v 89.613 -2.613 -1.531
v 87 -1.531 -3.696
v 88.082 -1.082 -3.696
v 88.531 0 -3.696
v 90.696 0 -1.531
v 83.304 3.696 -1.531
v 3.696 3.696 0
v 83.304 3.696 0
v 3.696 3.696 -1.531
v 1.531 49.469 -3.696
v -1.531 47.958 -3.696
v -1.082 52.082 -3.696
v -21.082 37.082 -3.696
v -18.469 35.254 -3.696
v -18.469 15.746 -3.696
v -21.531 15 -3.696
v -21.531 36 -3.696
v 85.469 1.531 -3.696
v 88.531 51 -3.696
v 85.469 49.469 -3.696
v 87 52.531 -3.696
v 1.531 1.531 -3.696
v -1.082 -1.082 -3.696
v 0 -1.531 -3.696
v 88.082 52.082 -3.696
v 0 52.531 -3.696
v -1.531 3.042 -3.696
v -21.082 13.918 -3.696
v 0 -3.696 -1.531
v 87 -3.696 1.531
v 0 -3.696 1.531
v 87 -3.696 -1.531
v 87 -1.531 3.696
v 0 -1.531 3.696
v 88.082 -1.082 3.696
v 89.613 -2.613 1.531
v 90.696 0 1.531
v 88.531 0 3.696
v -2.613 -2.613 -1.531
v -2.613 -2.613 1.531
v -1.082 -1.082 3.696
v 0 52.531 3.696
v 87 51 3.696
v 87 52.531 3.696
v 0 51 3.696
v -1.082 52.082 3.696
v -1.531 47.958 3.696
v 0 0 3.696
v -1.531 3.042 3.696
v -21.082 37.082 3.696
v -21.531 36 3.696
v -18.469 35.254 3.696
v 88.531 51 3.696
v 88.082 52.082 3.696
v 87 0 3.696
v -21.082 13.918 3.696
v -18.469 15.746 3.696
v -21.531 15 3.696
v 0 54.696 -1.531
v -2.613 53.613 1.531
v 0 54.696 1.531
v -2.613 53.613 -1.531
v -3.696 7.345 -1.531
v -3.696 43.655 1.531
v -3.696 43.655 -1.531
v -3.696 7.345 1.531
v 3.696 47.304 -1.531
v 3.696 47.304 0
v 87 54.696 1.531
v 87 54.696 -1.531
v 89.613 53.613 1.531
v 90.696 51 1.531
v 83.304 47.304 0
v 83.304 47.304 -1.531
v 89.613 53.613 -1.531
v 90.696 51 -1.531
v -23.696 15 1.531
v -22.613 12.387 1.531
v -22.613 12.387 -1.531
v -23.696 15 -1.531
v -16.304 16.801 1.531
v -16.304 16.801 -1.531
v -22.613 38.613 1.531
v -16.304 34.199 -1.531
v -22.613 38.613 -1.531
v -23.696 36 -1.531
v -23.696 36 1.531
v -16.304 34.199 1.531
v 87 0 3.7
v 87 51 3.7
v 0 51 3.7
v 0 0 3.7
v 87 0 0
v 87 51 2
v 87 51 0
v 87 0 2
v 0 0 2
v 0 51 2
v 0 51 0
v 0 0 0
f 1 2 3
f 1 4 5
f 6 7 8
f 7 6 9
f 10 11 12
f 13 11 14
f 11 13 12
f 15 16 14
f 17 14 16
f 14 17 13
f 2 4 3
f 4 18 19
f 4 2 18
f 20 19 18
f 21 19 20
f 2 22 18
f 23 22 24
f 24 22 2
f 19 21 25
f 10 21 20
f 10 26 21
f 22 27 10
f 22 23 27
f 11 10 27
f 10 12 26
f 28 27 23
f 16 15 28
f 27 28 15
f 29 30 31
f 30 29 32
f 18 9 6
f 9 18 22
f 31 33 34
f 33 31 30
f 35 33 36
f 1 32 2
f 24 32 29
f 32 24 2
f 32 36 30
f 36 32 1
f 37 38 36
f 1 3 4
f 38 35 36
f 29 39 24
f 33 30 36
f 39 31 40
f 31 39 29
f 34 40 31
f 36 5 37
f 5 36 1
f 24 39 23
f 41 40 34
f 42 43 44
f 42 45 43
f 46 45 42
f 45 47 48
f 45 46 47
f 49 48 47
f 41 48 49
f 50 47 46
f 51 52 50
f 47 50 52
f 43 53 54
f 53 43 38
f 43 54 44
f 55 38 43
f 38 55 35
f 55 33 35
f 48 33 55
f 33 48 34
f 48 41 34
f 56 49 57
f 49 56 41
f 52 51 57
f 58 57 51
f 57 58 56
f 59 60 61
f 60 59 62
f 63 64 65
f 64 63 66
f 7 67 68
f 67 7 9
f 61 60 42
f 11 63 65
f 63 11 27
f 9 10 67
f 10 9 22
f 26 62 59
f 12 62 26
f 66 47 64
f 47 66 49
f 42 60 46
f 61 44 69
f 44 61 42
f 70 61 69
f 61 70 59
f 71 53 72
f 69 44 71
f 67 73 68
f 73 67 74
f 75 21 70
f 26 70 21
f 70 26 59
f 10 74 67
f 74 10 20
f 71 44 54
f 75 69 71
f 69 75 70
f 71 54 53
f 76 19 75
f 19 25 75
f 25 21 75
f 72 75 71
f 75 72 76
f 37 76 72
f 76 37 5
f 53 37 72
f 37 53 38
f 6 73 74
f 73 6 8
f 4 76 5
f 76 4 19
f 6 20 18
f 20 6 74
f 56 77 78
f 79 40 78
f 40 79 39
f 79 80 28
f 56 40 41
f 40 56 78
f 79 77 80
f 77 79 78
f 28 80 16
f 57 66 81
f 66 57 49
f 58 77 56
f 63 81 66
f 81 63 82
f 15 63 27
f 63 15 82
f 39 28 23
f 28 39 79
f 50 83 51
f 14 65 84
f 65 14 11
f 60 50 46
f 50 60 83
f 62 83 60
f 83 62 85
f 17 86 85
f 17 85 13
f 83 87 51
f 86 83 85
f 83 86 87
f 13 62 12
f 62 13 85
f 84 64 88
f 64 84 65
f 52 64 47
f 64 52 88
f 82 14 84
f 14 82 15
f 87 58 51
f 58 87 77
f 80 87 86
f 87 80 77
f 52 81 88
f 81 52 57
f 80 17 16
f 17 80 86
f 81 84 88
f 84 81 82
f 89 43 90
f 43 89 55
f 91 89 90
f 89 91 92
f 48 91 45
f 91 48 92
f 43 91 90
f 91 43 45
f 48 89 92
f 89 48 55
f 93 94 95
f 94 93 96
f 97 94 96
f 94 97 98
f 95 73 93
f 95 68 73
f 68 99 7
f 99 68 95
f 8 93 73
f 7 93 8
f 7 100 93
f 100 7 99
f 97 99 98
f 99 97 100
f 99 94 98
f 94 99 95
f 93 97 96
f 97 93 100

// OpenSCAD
// Size of the mirror glass (rectangular)s
mirror = [ 87, 51, 2 ];
$fn = 8;
difference()
{
    union()
    {
        hull()
        {
            translate([ 0, 0, 0 ]) sphere(r = 4);
            translate([ mirror[0], 0, 0 ]) sphere(r = 4);
        }
        hull()
        {
            translate([ 0, 0, 0 ]) sphere(r = 4);
            translate([ 0, mirror[1], 0 ]) sphere(r = 4);
        }
        hull()
        {
            translate([ 0, mirror[1], 0 ]) sphere(r = 4);
            translate([ mirror[0], mirror[1], 0 ]) sphere(r = 4);
        }
        hull()
        {
            translate([ mirror[0], 0, 0 ]) sphere(r = 4);
            translate([ mirror[0], mirror[1], 0 ]) sphere(r = 4);
        }
        hull()
        {
            translate([ 0, 0, 0 ]) sphere(r = 4);
            translate([ -20, 15, 0 ]) sphere(r = 4);
        }
        hull()
        {
            translate([ 0, mirror[1], 0 ]) sphere(r = 4);
            translate([ -20, mirror[1] - 15, 0 ]) sphere(r = 4);
        }
        hull()
        {
            translate([ -20, 15, 0 ]) sphere(r = 4);
            translate([ -20, mirror[1] - 15, 0 ]) sphere(r = 4);
        }
        translate([ 0, 0, 1.7 ]) cube(mirror);
    }
    cube(mirror);
}
